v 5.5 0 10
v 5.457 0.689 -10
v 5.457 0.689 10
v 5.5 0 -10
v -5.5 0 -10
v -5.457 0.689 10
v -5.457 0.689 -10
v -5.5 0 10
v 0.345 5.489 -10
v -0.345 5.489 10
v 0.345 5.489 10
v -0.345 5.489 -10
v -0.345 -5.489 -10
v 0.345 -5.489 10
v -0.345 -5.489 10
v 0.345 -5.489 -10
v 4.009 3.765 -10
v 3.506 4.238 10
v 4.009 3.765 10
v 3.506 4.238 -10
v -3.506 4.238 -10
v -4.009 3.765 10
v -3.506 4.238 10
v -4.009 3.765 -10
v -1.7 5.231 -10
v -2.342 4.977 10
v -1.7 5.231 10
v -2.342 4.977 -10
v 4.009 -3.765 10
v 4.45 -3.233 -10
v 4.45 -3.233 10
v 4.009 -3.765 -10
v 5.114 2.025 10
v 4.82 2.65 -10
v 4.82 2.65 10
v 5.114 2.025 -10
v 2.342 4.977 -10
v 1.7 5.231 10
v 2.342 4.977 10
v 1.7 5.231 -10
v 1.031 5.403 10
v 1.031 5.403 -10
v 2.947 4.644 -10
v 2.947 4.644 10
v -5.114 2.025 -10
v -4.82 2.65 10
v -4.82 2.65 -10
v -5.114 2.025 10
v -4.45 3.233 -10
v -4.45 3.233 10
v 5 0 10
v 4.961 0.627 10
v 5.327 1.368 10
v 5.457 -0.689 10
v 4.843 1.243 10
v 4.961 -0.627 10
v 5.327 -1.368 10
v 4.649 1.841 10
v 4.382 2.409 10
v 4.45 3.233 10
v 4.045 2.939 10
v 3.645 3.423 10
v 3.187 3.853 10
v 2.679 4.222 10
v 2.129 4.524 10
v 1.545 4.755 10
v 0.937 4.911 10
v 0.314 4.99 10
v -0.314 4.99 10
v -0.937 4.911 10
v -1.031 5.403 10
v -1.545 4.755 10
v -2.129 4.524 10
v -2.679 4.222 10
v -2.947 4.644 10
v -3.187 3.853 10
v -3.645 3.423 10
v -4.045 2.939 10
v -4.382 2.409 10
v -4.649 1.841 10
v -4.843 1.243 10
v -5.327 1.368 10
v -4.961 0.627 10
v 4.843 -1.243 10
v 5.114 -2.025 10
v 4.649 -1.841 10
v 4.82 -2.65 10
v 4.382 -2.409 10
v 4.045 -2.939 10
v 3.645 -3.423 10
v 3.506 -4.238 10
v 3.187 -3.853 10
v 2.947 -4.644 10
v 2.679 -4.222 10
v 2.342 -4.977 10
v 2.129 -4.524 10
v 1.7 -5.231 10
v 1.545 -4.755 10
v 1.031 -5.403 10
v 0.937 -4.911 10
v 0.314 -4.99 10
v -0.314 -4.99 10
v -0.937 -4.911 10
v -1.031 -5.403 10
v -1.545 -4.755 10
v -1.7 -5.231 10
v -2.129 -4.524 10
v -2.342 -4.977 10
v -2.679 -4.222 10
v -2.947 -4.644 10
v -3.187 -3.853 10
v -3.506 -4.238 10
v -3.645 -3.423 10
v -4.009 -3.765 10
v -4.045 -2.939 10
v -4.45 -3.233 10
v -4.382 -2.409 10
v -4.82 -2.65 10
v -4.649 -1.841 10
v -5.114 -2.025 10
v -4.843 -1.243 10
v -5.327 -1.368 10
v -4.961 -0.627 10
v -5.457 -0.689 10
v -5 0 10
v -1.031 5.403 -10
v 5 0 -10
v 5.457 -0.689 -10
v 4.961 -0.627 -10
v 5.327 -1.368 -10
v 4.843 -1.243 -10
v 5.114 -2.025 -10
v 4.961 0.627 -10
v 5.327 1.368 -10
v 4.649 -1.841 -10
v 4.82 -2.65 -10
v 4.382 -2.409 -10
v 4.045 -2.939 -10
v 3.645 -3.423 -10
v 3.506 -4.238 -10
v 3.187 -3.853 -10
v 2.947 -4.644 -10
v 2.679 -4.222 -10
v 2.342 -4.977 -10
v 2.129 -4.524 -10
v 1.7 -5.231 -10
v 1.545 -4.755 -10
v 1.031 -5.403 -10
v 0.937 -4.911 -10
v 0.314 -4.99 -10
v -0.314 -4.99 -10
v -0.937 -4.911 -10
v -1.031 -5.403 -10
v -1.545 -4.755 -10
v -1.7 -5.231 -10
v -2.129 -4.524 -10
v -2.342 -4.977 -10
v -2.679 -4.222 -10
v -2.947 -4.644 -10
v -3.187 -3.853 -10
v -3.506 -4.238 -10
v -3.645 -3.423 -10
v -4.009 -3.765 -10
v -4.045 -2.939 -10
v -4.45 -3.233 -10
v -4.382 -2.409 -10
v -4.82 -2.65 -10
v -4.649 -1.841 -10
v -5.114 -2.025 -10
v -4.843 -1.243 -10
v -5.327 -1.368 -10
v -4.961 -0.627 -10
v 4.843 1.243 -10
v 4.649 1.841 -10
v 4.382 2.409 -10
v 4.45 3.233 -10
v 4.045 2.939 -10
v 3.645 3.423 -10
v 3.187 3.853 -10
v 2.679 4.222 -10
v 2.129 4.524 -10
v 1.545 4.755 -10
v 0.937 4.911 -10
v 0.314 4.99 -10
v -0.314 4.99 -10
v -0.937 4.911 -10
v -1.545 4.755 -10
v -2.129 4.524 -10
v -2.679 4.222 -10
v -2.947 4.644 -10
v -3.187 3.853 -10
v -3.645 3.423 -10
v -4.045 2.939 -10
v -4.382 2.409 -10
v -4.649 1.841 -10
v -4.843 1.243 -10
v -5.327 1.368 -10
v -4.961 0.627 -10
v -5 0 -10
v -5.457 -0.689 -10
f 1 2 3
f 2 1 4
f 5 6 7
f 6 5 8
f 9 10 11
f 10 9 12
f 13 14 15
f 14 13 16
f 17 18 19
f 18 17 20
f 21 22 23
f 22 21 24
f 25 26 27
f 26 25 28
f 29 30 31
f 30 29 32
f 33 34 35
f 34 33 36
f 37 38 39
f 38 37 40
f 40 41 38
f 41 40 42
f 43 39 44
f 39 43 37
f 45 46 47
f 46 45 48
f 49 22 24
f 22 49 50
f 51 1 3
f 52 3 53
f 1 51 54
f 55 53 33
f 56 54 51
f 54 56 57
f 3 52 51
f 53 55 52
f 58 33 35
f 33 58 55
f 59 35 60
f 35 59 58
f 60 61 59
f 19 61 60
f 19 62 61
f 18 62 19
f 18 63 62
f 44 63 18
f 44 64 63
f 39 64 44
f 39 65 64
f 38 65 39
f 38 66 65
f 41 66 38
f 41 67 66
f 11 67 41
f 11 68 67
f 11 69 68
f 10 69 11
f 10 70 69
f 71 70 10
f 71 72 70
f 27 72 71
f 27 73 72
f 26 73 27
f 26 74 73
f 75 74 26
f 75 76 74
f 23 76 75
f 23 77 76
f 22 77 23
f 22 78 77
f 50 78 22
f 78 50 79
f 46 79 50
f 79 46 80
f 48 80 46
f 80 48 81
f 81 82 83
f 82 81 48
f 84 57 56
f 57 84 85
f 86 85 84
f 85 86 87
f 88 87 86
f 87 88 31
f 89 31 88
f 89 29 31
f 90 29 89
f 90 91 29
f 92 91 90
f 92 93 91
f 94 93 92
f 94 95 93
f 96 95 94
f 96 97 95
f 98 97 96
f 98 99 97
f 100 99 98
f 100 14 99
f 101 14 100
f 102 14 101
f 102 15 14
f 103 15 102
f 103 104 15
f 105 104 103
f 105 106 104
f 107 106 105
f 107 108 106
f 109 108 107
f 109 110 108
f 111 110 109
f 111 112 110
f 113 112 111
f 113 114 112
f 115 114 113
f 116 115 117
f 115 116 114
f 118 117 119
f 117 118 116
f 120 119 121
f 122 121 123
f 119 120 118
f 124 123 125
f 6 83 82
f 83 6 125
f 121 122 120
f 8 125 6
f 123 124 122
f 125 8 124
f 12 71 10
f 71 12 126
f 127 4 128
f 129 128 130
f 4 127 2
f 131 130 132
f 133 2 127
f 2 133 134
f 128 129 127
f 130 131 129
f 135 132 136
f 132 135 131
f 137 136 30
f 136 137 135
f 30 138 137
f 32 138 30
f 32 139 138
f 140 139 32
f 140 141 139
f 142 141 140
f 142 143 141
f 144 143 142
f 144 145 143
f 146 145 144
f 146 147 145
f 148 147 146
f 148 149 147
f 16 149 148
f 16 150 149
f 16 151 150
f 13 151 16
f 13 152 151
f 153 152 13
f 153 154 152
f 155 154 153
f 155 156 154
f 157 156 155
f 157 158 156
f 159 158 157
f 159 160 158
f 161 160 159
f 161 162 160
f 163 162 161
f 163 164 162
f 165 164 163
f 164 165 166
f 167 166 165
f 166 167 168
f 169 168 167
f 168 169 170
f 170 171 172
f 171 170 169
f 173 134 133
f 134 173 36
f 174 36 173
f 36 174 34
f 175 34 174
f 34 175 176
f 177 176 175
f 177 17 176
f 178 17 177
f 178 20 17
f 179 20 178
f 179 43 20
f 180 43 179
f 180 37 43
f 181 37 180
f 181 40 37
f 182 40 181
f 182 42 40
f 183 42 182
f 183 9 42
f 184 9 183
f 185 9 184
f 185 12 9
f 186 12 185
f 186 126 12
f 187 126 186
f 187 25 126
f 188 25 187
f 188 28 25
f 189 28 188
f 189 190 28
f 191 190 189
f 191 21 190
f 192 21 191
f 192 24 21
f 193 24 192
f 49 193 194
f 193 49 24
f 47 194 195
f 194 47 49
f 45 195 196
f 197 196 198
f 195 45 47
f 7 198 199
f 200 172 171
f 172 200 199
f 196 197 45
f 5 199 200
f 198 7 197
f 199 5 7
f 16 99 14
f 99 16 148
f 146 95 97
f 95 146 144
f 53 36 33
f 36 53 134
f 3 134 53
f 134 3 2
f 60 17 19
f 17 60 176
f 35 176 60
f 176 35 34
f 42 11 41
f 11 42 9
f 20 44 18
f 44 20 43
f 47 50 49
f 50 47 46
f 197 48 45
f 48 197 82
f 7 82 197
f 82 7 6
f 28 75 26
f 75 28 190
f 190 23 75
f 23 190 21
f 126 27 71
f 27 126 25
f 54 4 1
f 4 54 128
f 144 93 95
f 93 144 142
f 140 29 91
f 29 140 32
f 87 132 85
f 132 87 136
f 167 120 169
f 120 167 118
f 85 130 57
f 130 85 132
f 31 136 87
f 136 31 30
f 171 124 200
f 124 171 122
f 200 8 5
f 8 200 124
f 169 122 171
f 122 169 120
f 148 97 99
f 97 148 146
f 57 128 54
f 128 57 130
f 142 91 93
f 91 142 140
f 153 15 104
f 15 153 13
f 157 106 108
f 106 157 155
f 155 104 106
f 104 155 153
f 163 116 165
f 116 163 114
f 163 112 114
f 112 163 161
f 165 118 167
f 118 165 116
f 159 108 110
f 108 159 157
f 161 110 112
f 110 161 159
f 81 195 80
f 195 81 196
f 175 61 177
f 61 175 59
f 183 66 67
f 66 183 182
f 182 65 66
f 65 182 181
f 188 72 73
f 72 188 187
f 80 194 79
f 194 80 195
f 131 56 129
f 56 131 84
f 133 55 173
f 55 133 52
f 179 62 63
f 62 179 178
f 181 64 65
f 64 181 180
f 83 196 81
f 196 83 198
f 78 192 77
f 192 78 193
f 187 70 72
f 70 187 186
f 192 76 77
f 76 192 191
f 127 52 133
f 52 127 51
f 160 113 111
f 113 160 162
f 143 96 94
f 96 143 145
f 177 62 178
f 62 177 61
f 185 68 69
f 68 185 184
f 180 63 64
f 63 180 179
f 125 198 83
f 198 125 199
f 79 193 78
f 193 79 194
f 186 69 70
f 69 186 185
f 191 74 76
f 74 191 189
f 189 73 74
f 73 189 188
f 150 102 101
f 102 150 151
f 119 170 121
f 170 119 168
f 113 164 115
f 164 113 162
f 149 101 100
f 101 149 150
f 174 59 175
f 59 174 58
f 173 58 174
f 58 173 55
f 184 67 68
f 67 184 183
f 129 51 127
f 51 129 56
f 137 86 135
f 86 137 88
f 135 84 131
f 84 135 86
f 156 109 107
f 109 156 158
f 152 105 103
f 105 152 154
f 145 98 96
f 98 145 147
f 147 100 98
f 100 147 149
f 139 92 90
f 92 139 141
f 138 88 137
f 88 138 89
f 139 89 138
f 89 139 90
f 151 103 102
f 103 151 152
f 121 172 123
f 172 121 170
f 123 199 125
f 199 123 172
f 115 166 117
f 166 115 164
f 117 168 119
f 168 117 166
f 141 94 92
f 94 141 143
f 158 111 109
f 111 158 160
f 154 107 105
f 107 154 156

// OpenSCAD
$fn = 50;


difference() {
	union() {
		translate(v = [0, 0, -10.0000000000]) {
			cylinder(h = 20, r = 5.5000000000);
		}
	}
	union() {
		translate(v = [0, 0, -100.0000000000]) {
			cylinder(h = 200, r = 5.0000000000);
		}
	}
}
